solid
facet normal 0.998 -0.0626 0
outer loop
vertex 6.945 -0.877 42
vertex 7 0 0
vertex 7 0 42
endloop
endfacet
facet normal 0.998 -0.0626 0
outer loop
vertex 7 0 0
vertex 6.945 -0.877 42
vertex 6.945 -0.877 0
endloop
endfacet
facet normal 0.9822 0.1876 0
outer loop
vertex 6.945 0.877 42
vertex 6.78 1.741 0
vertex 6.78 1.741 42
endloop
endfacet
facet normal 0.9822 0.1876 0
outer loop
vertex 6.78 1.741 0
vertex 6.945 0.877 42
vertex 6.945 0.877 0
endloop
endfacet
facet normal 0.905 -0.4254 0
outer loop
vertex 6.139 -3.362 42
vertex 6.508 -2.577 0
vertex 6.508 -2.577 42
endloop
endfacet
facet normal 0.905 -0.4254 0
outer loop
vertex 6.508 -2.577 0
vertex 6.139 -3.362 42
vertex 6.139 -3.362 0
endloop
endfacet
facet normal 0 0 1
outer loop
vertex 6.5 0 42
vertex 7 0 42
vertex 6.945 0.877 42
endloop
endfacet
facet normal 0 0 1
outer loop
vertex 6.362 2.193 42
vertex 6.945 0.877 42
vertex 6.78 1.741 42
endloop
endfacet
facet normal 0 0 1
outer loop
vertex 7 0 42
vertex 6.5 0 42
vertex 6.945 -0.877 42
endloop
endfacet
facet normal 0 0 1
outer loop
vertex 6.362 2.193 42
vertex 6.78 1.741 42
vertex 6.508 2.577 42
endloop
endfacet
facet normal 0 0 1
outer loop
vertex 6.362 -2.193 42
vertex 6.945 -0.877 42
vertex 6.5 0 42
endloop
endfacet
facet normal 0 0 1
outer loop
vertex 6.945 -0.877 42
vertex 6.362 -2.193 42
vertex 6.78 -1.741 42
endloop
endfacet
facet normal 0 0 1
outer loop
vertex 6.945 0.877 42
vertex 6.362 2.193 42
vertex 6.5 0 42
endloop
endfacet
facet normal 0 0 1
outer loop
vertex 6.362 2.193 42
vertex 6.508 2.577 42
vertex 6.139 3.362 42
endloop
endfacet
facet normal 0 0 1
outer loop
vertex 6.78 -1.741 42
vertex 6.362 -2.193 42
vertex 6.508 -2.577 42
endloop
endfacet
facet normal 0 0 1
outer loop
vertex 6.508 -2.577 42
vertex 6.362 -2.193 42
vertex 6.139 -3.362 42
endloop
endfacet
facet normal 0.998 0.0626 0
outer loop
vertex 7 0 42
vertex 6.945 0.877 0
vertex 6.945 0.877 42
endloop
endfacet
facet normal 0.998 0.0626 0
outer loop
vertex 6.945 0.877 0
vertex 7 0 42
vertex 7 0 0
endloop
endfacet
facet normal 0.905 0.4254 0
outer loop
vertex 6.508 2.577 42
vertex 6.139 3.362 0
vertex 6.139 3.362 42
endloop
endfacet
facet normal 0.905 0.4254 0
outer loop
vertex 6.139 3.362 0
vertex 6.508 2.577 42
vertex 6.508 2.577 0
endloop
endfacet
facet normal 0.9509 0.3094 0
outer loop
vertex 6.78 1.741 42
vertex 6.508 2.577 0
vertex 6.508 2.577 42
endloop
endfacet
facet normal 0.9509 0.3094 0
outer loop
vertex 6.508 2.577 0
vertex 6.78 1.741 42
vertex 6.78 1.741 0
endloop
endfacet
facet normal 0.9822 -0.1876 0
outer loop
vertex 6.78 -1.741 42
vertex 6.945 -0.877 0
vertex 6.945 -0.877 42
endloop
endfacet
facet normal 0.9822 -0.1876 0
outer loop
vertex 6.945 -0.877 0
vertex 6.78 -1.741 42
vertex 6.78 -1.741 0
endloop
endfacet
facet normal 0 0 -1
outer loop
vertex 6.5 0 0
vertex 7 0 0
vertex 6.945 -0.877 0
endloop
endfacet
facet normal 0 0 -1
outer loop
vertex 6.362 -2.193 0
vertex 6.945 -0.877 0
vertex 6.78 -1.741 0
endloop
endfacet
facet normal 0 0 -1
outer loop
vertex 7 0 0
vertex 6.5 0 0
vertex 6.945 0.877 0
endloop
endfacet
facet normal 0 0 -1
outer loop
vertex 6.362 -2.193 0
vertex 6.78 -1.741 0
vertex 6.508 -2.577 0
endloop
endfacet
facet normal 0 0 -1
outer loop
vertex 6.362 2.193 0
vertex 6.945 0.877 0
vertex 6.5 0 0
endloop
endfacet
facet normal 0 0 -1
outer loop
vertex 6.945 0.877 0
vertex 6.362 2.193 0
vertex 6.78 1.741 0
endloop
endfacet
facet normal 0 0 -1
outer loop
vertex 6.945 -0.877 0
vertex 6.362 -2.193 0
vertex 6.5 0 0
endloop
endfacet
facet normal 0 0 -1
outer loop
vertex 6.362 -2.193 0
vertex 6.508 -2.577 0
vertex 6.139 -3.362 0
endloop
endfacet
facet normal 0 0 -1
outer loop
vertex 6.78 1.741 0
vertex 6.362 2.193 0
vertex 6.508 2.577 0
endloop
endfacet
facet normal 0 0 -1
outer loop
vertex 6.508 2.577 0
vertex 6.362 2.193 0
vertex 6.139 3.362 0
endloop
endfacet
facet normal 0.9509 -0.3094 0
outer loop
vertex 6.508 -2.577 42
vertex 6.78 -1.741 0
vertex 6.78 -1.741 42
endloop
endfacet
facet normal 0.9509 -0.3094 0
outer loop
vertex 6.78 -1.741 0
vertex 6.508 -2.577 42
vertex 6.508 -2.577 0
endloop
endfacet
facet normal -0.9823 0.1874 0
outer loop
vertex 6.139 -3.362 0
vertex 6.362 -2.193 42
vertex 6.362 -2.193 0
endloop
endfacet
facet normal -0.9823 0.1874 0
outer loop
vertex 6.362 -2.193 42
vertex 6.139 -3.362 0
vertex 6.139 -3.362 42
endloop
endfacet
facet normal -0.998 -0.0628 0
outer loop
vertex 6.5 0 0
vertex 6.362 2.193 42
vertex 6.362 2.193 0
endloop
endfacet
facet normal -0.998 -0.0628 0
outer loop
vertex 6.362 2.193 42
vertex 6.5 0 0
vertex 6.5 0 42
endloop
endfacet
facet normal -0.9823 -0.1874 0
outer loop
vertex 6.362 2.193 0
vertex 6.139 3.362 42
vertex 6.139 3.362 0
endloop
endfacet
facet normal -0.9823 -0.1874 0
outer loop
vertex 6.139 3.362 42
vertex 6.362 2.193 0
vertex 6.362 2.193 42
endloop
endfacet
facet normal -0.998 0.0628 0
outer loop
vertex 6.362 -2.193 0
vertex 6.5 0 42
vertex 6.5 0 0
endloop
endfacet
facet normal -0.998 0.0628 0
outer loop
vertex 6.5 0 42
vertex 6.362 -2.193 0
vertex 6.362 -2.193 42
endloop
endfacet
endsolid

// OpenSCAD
$fn = 50;


difference() {
	union() {
		cylinder(h = 42, r = 7.0000000000);
		translate(v = [-14.0000000000, 0, 0]) {
			cylinder(h = 42, r = 7.0000000000);
		}
	}
	union() {
		cylinder(h = 42, r = 3.2500000000);
		cylinder(h = 42, r = 1.8000000000);
		cylinder(h = 42, r = 1.8000000000);
		cylinder(h = 42, r = 1.8000000000);
		translate(v = [-18.5000000000, 0, 0]) {
			hull() {
				translate(v = [-3.7500000000, 0.0000000000, 0]) {
					cylinder(h = 42, r = 7.5000000000);
				}
				translate(v = [3.7500000000, 0.0000000000, 0]) {
					cylinder(h = 42, r = 7.5000000000);
				}
				translate(v = [-3.7500000000, -0.0000000000, 0]) {
					cylinder(h = 42, r = 7.5000000000);
				}
				translate(v = [3.7500000000, -0.0000000000, 0]) {
					cylinder(h = 42, r = 7.5000000000);
				}
			}
		}
		translate(v = [-11.0000000000, 0, 0.0000000000]) {
			cylinder(h = 42, r = 17.5000000000);
		}
	}
}
